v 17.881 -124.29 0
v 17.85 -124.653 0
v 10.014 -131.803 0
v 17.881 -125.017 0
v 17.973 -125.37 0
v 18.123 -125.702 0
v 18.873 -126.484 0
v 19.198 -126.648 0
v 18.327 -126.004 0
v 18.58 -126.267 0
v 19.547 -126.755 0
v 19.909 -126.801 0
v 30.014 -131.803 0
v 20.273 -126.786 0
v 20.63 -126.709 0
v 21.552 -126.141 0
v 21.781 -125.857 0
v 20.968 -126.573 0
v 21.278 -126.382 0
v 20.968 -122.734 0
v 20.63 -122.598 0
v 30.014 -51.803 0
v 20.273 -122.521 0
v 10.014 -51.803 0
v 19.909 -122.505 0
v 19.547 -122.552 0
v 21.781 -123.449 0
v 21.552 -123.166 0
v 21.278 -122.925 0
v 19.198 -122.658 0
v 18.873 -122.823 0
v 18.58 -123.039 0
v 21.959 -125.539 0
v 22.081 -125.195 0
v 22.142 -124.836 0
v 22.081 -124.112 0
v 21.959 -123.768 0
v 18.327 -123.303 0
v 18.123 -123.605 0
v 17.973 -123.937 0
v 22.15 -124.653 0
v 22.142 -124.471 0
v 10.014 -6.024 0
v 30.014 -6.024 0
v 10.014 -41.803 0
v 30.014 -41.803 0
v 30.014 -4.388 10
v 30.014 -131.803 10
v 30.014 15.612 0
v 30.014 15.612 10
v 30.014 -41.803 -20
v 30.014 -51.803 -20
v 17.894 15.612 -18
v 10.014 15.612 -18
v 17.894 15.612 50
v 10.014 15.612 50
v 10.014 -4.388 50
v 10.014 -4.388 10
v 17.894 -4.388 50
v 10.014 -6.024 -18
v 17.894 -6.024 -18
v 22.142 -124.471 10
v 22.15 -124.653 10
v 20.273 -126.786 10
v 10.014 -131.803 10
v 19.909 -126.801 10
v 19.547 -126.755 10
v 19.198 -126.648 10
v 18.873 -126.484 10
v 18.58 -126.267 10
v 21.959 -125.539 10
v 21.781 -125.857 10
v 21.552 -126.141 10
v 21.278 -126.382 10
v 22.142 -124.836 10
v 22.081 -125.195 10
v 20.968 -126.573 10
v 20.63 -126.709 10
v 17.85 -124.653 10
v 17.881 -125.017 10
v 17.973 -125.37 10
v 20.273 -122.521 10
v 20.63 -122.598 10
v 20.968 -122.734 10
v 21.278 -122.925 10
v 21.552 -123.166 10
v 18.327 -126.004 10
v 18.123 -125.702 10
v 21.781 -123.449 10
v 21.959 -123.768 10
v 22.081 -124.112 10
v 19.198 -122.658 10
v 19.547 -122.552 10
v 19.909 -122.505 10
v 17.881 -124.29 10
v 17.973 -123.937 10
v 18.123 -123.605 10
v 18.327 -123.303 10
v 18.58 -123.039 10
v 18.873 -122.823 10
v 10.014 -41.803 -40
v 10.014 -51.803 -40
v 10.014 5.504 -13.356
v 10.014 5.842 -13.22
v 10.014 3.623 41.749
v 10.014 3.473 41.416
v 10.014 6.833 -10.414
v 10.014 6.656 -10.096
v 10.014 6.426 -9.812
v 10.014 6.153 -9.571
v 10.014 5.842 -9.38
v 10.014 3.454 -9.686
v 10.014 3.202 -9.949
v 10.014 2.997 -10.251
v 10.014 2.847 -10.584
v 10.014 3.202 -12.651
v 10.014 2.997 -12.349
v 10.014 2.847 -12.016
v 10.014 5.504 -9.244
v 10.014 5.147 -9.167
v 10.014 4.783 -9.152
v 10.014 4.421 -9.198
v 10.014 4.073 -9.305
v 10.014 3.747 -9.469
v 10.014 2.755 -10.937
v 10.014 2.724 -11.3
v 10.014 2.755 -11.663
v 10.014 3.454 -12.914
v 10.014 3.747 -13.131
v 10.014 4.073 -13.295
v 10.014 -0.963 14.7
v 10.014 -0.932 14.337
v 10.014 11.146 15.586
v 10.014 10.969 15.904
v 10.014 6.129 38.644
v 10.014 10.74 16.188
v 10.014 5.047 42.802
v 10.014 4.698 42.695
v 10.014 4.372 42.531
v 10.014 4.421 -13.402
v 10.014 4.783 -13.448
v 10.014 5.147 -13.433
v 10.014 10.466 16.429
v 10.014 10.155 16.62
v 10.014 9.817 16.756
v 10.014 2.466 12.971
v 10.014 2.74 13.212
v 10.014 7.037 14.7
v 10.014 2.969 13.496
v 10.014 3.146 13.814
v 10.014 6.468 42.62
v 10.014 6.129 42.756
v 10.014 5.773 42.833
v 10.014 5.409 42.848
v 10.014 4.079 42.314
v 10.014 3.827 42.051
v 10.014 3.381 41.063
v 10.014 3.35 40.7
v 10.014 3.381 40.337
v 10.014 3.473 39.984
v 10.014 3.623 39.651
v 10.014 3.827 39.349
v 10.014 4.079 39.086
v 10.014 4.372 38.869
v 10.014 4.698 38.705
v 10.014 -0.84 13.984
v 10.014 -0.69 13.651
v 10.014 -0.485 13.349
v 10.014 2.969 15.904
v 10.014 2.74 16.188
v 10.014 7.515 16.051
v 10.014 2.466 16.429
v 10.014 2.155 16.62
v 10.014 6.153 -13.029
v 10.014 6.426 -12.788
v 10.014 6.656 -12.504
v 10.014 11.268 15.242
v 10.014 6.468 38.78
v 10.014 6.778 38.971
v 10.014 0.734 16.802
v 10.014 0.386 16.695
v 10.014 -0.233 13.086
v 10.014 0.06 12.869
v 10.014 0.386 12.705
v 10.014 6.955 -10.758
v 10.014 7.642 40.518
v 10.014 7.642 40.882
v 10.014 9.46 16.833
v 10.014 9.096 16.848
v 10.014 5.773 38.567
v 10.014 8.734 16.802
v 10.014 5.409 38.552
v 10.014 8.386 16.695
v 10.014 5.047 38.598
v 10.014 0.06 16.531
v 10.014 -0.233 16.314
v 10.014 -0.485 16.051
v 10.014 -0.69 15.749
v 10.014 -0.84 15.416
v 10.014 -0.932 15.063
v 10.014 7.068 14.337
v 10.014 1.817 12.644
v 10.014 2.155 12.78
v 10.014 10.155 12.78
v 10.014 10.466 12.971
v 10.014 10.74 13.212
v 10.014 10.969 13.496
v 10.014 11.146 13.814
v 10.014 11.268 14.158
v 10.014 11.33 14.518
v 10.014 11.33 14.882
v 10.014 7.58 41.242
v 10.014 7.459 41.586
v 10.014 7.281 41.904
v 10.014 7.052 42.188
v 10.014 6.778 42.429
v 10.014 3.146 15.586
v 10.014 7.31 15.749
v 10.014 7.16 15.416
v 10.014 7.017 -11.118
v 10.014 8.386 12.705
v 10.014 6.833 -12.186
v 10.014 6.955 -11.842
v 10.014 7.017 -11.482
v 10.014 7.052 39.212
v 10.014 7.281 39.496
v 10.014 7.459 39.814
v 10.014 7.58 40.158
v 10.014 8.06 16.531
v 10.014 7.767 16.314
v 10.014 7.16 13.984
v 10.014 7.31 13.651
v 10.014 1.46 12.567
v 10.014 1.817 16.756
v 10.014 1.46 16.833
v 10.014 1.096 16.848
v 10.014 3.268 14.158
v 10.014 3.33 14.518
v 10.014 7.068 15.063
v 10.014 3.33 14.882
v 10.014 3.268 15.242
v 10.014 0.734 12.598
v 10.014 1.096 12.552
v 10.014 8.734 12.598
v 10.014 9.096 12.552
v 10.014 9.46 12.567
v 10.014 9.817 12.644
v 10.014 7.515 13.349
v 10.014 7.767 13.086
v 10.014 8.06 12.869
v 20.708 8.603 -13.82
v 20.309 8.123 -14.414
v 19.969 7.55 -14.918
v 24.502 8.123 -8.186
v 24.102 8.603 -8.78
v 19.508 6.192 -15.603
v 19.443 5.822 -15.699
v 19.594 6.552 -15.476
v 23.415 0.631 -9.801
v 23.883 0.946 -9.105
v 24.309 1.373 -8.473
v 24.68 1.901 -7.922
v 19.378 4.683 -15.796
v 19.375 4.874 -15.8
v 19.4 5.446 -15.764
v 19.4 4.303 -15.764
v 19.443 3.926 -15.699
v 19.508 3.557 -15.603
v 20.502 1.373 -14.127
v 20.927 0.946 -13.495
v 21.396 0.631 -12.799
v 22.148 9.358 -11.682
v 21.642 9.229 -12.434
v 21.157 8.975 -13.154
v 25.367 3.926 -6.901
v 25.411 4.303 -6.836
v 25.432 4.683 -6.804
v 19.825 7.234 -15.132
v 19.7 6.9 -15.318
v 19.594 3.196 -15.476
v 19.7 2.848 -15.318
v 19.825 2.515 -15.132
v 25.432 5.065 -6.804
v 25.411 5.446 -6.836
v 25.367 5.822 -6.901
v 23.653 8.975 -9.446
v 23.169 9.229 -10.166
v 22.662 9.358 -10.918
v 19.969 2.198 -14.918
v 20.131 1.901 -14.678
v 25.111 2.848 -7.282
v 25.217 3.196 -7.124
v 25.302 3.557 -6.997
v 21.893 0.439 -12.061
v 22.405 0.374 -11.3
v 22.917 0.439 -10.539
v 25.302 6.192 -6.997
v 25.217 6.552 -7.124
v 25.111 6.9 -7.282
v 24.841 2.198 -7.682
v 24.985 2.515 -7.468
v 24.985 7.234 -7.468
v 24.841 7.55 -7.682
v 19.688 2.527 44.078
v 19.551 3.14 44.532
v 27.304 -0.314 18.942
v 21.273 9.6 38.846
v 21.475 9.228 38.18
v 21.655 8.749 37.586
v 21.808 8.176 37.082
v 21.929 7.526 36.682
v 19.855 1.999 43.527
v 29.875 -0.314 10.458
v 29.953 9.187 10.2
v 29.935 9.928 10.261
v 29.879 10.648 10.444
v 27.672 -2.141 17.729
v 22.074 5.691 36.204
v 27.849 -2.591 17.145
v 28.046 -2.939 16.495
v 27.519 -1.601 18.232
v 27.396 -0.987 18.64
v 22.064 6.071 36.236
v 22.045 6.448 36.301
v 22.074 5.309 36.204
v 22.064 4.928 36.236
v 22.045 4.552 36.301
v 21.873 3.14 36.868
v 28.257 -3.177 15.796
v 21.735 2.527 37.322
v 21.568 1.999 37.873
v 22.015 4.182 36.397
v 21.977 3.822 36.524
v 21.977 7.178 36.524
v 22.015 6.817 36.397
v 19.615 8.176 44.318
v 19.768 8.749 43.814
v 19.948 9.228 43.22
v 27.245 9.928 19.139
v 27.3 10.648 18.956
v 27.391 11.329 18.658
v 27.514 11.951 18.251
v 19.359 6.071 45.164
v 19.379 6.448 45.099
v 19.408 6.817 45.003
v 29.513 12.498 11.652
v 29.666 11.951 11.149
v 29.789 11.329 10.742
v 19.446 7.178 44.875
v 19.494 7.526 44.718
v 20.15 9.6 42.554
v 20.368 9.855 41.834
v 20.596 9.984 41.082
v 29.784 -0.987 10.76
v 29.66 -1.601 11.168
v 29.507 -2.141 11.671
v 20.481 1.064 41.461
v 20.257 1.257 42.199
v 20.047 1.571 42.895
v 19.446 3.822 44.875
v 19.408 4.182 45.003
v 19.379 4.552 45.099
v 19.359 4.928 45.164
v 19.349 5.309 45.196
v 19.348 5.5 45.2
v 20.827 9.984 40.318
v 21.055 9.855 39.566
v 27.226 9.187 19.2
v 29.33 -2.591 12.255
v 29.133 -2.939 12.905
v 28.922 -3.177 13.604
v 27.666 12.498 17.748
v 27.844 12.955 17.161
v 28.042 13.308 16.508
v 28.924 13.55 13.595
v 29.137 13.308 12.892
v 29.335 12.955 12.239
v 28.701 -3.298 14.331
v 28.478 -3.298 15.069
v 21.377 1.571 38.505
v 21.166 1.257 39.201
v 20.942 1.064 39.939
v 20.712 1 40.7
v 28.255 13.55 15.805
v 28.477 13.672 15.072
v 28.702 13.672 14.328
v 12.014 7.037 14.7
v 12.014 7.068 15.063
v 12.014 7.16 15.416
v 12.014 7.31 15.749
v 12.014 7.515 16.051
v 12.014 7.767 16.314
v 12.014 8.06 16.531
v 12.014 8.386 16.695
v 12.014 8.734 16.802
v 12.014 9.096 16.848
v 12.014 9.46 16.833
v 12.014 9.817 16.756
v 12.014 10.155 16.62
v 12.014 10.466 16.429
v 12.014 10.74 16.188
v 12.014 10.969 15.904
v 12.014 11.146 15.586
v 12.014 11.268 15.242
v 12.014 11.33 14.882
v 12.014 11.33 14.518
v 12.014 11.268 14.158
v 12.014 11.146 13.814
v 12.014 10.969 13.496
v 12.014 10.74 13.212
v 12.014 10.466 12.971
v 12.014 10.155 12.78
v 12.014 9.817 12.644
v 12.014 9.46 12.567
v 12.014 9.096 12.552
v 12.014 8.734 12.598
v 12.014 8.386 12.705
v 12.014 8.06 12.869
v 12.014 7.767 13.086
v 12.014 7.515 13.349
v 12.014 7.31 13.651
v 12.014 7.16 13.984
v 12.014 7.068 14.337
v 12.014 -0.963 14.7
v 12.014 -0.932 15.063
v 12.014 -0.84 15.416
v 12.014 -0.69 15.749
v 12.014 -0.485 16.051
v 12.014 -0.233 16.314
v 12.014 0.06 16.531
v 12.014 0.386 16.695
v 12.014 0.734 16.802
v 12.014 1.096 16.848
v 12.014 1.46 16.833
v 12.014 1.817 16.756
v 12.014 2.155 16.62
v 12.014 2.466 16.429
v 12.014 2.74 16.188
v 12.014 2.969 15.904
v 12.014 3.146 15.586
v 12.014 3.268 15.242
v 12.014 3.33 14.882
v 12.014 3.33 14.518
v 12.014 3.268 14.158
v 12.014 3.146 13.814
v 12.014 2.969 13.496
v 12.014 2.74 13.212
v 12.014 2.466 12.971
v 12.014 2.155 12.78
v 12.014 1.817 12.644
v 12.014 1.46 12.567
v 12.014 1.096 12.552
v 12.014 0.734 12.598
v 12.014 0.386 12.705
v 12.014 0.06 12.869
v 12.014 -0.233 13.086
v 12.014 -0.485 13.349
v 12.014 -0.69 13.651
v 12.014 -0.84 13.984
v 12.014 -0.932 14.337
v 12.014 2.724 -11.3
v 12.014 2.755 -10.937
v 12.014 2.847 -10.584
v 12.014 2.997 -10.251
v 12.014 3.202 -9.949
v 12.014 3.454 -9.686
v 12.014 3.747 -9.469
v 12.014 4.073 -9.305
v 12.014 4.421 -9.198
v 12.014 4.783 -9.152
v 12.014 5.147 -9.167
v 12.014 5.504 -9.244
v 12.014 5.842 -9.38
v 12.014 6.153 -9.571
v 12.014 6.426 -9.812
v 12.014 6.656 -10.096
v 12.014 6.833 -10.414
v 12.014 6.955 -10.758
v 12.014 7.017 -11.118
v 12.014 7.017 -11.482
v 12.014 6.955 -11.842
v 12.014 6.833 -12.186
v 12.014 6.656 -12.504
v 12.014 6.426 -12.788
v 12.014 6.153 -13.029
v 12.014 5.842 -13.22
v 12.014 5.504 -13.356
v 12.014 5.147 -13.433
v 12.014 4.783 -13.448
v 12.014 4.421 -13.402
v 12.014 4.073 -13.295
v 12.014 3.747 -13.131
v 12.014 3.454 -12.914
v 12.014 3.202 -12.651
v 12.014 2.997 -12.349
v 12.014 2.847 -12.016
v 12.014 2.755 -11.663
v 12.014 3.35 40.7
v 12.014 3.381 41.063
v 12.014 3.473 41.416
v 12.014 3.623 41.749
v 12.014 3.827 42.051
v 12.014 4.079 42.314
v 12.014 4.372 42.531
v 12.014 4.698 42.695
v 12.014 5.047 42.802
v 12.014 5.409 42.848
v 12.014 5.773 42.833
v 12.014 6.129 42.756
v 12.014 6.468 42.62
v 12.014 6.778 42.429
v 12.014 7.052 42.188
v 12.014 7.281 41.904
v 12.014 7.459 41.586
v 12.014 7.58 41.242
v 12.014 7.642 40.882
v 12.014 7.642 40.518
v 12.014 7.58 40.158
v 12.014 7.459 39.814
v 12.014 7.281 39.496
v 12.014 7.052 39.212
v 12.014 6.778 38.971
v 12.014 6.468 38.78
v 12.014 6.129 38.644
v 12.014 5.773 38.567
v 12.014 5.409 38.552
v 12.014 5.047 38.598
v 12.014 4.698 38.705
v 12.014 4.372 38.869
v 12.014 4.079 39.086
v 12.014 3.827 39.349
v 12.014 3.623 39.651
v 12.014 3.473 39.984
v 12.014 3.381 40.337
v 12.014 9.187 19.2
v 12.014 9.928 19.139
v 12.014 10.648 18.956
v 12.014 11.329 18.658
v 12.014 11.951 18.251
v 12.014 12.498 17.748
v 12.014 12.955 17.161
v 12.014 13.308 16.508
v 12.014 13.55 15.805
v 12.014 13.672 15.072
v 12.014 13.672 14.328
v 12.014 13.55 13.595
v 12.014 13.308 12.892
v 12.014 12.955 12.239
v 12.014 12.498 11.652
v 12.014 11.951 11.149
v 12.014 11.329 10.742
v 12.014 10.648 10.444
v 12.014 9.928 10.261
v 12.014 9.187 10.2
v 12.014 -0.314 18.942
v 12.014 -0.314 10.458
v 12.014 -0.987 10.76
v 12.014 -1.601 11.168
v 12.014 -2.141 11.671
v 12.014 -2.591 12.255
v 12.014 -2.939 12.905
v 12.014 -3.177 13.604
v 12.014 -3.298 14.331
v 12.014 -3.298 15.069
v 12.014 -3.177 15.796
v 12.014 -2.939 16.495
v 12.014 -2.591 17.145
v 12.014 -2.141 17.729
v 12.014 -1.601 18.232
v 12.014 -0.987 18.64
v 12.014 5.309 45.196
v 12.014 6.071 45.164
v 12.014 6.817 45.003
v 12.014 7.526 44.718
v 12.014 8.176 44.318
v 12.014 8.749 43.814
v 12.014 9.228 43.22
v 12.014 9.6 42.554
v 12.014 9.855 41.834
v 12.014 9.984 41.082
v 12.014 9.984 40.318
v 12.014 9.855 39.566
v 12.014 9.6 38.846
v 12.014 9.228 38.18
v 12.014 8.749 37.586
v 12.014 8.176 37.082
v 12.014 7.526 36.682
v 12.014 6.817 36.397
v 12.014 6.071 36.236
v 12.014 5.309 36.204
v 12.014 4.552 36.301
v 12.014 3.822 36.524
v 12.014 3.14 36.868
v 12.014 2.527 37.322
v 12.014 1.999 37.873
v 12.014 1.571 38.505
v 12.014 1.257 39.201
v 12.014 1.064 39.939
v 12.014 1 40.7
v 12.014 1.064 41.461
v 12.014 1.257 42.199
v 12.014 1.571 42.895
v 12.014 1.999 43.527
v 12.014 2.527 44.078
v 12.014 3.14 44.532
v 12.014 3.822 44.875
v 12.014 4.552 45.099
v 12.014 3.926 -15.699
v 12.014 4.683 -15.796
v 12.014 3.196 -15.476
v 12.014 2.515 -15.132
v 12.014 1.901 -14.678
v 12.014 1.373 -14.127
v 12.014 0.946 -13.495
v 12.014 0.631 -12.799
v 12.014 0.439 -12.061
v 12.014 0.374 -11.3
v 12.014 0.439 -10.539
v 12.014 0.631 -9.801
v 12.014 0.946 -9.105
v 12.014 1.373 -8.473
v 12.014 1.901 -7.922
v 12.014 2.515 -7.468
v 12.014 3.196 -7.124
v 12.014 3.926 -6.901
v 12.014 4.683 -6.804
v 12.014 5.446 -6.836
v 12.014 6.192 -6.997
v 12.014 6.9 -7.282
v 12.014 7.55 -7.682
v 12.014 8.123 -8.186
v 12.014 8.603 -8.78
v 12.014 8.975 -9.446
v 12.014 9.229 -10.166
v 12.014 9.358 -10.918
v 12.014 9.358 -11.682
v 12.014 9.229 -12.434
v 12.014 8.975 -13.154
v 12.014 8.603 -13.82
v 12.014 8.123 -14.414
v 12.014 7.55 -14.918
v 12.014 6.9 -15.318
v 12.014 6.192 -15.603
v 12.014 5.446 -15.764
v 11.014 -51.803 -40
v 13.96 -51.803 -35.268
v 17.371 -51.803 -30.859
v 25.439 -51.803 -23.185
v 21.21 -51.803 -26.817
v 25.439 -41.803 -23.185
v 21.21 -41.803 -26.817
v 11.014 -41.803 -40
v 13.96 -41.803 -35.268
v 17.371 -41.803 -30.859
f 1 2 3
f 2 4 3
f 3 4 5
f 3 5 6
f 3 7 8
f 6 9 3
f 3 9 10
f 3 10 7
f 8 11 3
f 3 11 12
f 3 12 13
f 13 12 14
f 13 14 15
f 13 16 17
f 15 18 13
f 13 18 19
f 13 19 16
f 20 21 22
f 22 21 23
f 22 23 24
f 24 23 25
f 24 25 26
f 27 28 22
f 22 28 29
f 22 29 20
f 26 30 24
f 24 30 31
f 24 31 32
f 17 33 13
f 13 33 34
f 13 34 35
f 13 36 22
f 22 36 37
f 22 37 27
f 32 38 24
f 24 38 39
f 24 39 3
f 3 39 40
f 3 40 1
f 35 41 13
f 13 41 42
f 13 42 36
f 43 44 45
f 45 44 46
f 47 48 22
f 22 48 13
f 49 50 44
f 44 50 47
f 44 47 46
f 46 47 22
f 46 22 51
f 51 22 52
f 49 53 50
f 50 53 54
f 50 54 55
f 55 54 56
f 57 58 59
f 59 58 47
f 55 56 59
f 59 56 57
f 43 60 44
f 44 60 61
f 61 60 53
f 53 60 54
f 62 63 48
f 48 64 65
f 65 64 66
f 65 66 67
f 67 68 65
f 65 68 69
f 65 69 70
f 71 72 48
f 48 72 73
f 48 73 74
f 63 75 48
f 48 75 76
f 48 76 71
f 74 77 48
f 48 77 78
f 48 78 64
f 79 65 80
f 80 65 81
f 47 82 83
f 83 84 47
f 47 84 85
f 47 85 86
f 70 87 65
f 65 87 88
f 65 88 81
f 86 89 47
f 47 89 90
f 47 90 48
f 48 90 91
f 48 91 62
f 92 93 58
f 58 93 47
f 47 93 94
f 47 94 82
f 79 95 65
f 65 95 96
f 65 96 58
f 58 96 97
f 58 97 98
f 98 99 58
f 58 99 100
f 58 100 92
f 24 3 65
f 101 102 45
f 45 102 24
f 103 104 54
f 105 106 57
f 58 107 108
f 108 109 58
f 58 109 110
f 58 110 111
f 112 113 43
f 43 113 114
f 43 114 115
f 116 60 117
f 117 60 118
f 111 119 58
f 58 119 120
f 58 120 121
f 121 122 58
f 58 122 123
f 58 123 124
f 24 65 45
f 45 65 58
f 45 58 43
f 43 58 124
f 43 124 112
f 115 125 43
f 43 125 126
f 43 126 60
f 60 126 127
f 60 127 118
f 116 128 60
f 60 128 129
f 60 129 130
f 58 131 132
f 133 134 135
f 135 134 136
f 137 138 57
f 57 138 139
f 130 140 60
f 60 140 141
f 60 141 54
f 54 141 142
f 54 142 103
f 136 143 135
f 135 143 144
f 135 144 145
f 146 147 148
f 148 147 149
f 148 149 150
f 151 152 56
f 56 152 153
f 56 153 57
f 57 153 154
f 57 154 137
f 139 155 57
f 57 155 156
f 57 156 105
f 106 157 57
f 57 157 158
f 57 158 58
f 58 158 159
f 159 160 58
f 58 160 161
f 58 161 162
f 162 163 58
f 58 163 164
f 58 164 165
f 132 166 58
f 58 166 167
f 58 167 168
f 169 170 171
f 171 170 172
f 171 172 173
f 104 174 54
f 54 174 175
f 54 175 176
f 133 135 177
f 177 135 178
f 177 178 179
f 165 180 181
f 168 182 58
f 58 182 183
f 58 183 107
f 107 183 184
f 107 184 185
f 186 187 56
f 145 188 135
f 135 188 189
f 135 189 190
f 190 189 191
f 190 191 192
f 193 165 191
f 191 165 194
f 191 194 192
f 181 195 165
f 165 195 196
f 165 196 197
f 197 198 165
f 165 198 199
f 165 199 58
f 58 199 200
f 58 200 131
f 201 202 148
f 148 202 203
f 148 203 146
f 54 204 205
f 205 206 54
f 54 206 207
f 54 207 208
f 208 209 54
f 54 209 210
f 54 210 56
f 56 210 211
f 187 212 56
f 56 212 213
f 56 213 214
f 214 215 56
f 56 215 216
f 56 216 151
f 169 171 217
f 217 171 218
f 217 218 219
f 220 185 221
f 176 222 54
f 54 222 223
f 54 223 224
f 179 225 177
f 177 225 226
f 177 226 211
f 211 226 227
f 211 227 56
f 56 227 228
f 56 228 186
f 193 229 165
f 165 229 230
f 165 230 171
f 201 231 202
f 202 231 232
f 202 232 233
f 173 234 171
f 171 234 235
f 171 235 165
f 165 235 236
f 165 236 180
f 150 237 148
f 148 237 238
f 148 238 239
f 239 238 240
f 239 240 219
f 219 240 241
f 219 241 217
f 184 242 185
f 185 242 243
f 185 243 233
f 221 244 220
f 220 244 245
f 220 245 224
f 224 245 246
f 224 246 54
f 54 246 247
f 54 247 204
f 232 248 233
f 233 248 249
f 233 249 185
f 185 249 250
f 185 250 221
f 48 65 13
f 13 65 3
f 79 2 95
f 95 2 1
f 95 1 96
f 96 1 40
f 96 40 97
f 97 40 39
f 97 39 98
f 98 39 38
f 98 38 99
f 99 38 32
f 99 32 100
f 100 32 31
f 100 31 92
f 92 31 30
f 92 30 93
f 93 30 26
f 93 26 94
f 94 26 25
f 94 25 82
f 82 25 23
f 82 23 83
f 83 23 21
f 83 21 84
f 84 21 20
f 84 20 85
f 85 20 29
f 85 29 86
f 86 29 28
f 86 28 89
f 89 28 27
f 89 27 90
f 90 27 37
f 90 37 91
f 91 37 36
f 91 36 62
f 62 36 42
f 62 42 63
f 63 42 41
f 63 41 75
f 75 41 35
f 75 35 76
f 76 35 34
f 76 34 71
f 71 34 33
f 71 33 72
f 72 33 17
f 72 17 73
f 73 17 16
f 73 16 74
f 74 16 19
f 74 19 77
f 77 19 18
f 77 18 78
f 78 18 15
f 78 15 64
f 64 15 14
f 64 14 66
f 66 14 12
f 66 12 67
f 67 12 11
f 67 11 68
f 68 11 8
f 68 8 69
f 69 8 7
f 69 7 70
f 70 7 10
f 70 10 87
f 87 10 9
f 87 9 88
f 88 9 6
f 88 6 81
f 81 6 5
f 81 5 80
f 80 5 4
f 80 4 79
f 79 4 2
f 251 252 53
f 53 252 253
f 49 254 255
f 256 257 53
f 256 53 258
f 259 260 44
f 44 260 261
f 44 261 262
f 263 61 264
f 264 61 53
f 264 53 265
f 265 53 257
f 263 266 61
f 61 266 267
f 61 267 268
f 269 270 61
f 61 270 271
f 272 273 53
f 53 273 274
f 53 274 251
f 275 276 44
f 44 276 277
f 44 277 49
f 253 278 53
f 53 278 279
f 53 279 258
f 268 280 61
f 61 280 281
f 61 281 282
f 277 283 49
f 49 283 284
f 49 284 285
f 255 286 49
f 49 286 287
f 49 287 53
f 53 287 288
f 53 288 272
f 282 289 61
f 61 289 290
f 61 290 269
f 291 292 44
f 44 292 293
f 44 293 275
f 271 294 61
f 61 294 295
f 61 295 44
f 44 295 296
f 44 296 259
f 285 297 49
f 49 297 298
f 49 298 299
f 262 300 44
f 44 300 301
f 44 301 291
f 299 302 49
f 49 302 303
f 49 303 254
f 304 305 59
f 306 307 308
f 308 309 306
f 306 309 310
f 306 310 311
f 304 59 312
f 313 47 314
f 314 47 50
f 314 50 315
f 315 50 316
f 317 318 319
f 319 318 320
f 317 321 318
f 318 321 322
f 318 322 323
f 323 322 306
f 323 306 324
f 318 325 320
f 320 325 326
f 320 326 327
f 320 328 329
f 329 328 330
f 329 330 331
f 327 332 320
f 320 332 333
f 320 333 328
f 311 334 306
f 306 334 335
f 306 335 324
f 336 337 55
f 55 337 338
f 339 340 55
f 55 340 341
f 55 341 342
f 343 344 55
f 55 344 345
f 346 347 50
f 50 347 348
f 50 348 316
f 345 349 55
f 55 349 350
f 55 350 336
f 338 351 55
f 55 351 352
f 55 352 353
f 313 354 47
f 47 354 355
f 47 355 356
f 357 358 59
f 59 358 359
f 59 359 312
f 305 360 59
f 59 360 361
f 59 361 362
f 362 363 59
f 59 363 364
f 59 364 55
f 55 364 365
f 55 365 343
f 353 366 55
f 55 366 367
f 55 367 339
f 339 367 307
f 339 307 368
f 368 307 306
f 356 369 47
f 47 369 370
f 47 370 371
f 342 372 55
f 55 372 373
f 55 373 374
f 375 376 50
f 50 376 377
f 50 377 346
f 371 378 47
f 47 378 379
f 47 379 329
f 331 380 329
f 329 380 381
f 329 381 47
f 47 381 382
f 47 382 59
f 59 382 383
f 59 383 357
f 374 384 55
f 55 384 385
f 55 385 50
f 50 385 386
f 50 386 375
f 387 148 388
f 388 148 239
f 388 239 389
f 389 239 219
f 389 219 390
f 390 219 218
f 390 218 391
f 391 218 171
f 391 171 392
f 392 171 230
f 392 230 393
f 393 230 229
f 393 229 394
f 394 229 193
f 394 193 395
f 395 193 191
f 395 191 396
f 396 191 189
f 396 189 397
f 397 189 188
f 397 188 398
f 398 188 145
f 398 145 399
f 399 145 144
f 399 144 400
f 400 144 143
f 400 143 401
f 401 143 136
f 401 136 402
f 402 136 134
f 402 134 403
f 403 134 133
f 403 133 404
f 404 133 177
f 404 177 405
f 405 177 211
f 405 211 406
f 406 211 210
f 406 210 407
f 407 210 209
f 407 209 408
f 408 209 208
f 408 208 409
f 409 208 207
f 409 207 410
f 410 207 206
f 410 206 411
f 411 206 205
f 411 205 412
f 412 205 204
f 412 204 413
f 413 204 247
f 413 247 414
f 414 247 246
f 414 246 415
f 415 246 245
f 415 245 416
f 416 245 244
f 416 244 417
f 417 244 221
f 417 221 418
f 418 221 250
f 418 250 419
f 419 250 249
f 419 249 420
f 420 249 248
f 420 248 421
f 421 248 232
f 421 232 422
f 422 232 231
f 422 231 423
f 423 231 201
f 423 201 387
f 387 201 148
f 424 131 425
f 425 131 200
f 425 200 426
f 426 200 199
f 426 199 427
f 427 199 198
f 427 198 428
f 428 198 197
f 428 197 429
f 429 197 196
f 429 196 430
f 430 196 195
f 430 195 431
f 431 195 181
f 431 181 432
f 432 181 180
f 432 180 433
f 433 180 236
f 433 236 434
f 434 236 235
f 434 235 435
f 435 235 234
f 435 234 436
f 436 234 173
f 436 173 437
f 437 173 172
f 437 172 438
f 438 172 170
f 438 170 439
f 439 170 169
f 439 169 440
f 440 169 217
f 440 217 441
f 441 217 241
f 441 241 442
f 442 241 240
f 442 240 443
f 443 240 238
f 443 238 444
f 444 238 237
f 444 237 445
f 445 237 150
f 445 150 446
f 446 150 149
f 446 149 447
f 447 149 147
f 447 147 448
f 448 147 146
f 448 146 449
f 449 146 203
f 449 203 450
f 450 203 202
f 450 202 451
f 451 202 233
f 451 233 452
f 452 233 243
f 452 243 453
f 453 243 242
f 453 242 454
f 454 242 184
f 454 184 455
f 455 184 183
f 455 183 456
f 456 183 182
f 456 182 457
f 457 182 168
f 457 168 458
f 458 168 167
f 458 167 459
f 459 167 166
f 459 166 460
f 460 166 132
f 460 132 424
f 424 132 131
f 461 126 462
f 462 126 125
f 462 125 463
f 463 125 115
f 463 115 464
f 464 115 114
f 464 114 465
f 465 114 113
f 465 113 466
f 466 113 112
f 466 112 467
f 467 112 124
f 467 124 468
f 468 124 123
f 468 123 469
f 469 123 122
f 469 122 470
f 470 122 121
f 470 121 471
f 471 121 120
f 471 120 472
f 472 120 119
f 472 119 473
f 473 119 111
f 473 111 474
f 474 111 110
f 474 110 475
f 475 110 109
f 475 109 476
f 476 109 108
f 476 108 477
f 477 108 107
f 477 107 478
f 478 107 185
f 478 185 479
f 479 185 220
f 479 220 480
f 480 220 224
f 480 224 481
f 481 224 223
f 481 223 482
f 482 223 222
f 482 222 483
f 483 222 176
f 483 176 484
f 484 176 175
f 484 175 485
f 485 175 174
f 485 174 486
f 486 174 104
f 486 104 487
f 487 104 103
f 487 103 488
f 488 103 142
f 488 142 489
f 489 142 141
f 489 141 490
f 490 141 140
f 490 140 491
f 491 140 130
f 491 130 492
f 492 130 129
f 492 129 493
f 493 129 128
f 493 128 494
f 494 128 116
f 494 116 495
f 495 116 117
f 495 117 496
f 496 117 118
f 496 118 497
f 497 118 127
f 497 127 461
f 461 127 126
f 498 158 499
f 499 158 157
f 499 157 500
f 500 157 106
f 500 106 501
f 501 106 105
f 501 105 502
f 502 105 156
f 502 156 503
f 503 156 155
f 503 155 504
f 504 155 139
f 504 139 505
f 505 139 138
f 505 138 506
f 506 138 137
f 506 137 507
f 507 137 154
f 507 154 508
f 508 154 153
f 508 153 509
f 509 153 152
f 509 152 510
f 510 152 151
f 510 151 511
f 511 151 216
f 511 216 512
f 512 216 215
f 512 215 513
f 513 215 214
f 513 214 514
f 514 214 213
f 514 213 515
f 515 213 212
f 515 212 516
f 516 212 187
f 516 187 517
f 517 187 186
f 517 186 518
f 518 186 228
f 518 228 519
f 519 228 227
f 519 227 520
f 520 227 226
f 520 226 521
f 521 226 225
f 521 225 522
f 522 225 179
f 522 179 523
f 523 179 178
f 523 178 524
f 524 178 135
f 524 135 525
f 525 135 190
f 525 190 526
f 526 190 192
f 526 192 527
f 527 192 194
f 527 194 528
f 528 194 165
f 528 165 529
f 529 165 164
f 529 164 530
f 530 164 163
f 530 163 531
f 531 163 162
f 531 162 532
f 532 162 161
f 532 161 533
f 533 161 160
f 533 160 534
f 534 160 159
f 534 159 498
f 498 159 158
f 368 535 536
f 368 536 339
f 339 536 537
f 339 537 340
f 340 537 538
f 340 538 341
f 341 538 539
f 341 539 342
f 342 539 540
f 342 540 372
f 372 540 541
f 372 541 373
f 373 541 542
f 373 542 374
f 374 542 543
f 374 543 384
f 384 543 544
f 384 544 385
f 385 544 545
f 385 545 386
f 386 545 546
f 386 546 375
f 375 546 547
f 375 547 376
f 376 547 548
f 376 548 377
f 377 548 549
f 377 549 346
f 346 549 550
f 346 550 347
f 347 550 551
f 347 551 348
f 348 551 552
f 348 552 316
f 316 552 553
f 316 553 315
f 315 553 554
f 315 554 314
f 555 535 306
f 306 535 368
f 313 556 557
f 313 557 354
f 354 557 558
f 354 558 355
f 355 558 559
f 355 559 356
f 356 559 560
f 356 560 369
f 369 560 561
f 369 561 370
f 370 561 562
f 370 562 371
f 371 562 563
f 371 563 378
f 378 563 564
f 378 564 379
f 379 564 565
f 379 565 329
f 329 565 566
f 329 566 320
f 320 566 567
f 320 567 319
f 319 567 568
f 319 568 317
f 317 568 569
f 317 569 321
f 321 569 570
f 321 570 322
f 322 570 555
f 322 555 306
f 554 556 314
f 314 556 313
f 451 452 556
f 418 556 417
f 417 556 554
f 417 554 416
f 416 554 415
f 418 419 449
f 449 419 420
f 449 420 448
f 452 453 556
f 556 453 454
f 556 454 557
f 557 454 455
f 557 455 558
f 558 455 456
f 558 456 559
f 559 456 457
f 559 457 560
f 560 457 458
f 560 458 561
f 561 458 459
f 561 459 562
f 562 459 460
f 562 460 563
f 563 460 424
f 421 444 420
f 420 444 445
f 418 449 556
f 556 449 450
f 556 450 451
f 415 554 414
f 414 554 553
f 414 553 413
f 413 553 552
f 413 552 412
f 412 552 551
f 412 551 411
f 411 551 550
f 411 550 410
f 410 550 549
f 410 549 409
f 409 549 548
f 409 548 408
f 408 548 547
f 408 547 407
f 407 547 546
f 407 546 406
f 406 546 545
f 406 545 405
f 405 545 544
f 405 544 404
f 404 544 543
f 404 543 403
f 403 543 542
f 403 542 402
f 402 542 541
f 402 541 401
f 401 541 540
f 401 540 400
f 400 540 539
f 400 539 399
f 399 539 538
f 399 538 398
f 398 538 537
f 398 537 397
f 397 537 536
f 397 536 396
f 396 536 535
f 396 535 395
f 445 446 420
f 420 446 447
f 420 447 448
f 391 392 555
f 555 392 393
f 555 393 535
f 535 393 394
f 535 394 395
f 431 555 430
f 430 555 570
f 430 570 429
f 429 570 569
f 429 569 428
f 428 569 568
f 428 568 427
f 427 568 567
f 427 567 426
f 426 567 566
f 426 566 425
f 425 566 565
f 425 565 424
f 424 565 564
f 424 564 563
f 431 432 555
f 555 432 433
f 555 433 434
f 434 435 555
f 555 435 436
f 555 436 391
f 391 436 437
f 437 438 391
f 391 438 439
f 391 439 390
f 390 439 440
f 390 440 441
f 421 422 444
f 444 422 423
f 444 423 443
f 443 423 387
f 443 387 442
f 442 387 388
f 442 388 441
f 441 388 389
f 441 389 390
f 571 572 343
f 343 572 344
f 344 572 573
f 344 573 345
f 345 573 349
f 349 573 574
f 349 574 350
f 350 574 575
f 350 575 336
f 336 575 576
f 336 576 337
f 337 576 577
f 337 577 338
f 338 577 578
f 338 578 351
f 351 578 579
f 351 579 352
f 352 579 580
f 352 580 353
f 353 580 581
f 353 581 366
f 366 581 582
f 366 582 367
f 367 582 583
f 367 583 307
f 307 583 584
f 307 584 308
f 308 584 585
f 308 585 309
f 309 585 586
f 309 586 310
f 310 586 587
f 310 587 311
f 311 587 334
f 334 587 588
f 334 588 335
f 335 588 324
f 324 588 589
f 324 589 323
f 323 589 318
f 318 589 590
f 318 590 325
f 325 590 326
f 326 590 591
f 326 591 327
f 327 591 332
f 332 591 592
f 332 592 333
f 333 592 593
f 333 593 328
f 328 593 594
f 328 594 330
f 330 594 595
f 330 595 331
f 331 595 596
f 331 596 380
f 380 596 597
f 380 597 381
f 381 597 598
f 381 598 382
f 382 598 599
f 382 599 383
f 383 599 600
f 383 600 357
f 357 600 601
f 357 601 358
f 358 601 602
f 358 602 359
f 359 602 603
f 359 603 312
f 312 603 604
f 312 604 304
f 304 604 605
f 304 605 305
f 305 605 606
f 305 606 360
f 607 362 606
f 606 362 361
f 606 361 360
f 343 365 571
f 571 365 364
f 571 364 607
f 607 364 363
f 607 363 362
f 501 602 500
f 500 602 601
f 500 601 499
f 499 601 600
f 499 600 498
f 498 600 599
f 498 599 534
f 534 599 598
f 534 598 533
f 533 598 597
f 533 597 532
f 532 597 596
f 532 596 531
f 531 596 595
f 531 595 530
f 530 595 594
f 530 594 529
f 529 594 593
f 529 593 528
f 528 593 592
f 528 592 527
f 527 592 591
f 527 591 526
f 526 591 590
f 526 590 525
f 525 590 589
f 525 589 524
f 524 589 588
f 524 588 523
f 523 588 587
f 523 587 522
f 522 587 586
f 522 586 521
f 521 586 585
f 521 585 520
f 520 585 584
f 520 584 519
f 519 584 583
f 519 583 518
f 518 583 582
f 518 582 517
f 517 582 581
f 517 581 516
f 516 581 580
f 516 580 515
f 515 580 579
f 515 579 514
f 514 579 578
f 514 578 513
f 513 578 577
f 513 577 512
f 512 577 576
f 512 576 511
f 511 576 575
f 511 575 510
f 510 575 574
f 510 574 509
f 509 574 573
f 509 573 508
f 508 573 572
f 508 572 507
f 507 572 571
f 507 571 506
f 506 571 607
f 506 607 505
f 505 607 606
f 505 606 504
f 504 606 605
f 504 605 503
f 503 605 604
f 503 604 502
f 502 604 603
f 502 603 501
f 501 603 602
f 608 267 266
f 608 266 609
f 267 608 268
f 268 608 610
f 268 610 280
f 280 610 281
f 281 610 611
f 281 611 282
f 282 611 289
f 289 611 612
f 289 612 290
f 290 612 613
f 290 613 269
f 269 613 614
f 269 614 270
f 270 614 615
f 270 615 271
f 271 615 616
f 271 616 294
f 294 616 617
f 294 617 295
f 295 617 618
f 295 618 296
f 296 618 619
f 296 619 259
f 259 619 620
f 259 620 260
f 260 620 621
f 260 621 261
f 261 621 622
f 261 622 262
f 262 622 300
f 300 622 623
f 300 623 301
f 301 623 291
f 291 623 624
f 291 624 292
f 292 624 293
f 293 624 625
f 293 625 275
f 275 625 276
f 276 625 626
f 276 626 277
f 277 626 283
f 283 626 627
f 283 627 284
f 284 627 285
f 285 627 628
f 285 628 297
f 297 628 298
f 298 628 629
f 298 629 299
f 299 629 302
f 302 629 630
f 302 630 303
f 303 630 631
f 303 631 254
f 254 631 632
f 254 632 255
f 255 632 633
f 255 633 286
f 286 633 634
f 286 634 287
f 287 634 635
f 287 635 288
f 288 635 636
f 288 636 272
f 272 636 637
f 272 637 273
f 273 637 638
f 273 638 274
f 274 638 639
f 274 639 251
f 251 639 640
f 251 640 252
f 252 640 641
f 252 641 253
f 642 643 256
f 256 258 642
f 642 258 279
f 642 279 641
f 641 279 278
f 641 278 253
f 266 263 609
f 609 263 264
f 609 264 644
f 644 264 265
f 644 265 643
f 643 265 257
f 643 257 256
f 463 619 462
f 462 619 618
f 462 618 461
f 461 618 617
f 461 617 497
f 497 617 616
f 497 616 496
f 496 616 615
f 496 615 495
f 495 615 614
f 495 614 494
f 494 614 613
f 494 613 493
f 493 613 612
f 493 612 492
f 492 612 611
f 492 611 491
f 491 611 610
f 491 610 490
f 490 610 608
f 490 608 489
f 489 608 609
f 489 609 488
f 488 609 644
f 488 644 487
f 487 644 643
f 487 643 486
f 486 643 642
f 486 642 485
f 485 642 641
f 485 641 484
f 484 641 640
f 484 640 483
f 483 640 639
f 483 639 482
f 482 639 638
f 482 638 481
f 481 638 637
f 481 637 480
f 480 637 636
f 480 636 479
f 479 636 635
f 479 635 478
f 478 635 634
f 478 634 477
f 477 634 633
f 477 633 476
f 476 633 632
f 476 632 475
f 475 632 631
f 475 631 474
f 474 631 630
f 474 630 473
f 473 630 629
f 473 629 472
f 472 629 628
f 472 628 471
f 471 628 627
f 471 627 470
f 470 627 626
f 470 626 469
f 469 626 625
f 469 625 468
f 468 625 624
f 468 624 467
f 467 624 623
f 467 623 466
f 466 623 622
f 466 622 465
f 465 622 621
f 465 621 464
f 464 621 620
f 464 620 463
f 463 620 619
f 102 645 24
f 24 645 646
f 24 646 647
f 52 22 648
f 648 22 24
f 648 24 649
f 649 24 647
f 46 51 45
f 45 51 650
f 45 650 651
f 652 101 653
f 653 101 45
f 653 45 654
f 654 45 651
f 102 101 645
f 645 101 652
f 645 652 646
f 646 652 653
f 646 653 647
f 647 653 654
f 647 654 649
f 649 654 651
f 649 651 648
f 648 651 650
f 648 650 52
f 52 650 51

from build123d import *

# Parameters (mm, degrees)
SKETCH_1_W               = 20
SKETCH_1_H               = 147.415
SKETCH_1_R               = 2.15
EXTRUDE_1_DEPTH          = 10
SKETCH_2_W               = 20
SKETCH_2_H               = 20
EXTRUDE_2_DEPTH          = 40
SKETCH_3_W               = 20
SKETCH_3_H               = 21.635845778
EXTRUDE_3_DEPTH          = 18
CUT_EXTRUDE_1_DEPTH      = 10
CUT_EXTRUDE_1_DEPTH_BACK = 20
SKETCH_5_R               = 2.15
CUT_EXTRUDE_2_DEPTH      = 2
CUT_EXTRUDE_START        = -2
SKETCH_6_R               = 4.5
CUT_EXTRUDE_3_DEPTH      = 20
SKETCH_7_W               = 20
SKETCH_7_H               = 10
EXTRUDE_4_DEPTH          = 40
CUT_EXTRUDE_5_REACH      = 109.242


with BuildPart() as part:
    # 草图1 → 凸台-拉伸1 (new body)
    with BuildSketch(Plane.XY):
        with Locations((20.013762606, -58.095888527)):
            Rectangle(SKETCH_1_W, SKETCH_1_H)
        with Locations((20, -124.653388527)):
            Circle(SKETCH_1_R, mode=Mode.SUBTRACT)
    extrude(amount=EXTRUDE_1_DEPTH)

    # 草图2 → 凸台-拉伸2 (add)
    with BuildSketch(Plane.XY.offset(10)):
        with Locations((20.013762606, 5.611611473)):
            Rectangle(SKETCH_2_W, SKETCH_2_H)
    extrude(amount=EXTRUDE_2_DEPTH)

    # 草图3 → 凸台-拉伸3 (add)
    with BuildSketch(Plane(origin=(0, 0, 0), x_dir=(-1, 0, 0), z_dir=(0, 0, -1))):
        with Locations((-20.013762606, 4.793688584)):
            Rectangle(SKETCH_3_W, SKETCH_3_H)
    extrude(amount=EXTRUDE_3_DEPTH)

    # 草图4 → 切除-拉伸1 (cut, two sides: drawn at the far end of the back side and taken through both)
    with BuildSketch(Plane.XZ.offset(4.388388527).offset(-CUT_EXTRUDE_1_DEPTH_BACK)):
        Polygon((17.893762606, 50), (30.013762606, 50), (30.013762606, 10), align=None)
        Polygon((17.893762606, -18), (30.013762606, -18), (30.013762606, 0), align=None)
    extrude(amount=CUT_EXTRUDE_1_DEPTH + CUT_EXTRUDE_1_DEPTH_BACK, mode=Mode.SUBTRACT)

    # 草图5 → 切除-拉伸2 (cut)
    with BuildSketch(Plane.ZY.offset(-10.013762606)):
        with Locations(Location((14.7, 9.187302616, 0), (0, 0, 270))):
            Circle(SKETCH_5_R)
        with Locations(Location((14.7, 1.187302616, 0), (0, 0, 270))):
            Circle(SKETCH_5_R)
        with Locations(Location((40.7, 5.49974849, 0), (0, 0, 270))):
            Circle(SKETCH_5_R)
        with Locations(Location((-11.3, 4.874278045, 0), (0, 0, 270))):
            Circle(SKETCH_5_R)
    extrude(amount=-CUT_EXTRUDE_2_DEPTH, mode=Mode.SUBTRACT)

    # 草图6 → 切除-拉伸3 (cut)
    with BuildSketch(Plane.ZY.offset(-10.013762606).offset(CUT_EXTRUDE_START)):
        with Locations(Location((40.7, 5.49974849, 0), (0, 0, 270))):
            Circle(SKETCH_6_R)
        with Locations(Location((-11.3, 4.874278045, 0), (0, 0, 270))):
            Circle(SKETCH_6_R)
        with BuildLine():
            Line((19.2, 9.187302616), (18.942279399, -0.313718869))
            ThreePointArc((18.942279399, -0.313718869), (14.7, -3.312697384), (10.457720601, -0.313718869))
            Line((10.457720601, -0.313718869), (10.2, 9.187302616))
            ThreePointArc((10.2, 9.187302616), (14.7, 13.687302616), (19.2, 9.187302616))
        make_face()
    extrude(amount=-CUT_EXTRUDE_3_DEPTH, mode=Mode.SUBTRACT)

    # 草图7 → 凸台-拉伸4 (add)
    with BuildSketch(Plane(origin=(0, 0, 0), x_dir=(-1, 0, 0), z_dir=(0, 0, -1))):
        with Locations((-20.013762606, -46.803388527)):
            Rectangle(SKETCH_7_W, SKETCH_7_H)
    extrude(amount=EXTRUDE_4_DEPTH)

    # 草图8 → 切除-拉伸5 (cut, up to next)
    with BuildSketch(Plane(origin=(0, -41.803388527, 0), x_dir=(1, 0, 0), z_dir=(0, 1, 0)), mode=Mode.PRIVATE) as cut_extrude_5_sk1:
        with BuildLine():
            Line((30.013762606, 20), (30.013762606, 40))
            Line((30.013762606, 40), (11.013762606, 40))
            ThreePointArc((11.013762606, 40), (19.239482102, 28.789433521), (30.013762606, 20))
        make_face()
    cut_extrude_5_tool1 = extrude(cut_extrude_5_sk1.sketch, amount=-CUT_EXTRUDE_5_REACH, mode=Mode.PRIVATE) & part.part
    add(cut_extrude_5_tool1.solids().sort_by_distance((23.14433, -41.803389, -32.776655))[0], mode=Mode.SUBTRACT)


solid = part.part
